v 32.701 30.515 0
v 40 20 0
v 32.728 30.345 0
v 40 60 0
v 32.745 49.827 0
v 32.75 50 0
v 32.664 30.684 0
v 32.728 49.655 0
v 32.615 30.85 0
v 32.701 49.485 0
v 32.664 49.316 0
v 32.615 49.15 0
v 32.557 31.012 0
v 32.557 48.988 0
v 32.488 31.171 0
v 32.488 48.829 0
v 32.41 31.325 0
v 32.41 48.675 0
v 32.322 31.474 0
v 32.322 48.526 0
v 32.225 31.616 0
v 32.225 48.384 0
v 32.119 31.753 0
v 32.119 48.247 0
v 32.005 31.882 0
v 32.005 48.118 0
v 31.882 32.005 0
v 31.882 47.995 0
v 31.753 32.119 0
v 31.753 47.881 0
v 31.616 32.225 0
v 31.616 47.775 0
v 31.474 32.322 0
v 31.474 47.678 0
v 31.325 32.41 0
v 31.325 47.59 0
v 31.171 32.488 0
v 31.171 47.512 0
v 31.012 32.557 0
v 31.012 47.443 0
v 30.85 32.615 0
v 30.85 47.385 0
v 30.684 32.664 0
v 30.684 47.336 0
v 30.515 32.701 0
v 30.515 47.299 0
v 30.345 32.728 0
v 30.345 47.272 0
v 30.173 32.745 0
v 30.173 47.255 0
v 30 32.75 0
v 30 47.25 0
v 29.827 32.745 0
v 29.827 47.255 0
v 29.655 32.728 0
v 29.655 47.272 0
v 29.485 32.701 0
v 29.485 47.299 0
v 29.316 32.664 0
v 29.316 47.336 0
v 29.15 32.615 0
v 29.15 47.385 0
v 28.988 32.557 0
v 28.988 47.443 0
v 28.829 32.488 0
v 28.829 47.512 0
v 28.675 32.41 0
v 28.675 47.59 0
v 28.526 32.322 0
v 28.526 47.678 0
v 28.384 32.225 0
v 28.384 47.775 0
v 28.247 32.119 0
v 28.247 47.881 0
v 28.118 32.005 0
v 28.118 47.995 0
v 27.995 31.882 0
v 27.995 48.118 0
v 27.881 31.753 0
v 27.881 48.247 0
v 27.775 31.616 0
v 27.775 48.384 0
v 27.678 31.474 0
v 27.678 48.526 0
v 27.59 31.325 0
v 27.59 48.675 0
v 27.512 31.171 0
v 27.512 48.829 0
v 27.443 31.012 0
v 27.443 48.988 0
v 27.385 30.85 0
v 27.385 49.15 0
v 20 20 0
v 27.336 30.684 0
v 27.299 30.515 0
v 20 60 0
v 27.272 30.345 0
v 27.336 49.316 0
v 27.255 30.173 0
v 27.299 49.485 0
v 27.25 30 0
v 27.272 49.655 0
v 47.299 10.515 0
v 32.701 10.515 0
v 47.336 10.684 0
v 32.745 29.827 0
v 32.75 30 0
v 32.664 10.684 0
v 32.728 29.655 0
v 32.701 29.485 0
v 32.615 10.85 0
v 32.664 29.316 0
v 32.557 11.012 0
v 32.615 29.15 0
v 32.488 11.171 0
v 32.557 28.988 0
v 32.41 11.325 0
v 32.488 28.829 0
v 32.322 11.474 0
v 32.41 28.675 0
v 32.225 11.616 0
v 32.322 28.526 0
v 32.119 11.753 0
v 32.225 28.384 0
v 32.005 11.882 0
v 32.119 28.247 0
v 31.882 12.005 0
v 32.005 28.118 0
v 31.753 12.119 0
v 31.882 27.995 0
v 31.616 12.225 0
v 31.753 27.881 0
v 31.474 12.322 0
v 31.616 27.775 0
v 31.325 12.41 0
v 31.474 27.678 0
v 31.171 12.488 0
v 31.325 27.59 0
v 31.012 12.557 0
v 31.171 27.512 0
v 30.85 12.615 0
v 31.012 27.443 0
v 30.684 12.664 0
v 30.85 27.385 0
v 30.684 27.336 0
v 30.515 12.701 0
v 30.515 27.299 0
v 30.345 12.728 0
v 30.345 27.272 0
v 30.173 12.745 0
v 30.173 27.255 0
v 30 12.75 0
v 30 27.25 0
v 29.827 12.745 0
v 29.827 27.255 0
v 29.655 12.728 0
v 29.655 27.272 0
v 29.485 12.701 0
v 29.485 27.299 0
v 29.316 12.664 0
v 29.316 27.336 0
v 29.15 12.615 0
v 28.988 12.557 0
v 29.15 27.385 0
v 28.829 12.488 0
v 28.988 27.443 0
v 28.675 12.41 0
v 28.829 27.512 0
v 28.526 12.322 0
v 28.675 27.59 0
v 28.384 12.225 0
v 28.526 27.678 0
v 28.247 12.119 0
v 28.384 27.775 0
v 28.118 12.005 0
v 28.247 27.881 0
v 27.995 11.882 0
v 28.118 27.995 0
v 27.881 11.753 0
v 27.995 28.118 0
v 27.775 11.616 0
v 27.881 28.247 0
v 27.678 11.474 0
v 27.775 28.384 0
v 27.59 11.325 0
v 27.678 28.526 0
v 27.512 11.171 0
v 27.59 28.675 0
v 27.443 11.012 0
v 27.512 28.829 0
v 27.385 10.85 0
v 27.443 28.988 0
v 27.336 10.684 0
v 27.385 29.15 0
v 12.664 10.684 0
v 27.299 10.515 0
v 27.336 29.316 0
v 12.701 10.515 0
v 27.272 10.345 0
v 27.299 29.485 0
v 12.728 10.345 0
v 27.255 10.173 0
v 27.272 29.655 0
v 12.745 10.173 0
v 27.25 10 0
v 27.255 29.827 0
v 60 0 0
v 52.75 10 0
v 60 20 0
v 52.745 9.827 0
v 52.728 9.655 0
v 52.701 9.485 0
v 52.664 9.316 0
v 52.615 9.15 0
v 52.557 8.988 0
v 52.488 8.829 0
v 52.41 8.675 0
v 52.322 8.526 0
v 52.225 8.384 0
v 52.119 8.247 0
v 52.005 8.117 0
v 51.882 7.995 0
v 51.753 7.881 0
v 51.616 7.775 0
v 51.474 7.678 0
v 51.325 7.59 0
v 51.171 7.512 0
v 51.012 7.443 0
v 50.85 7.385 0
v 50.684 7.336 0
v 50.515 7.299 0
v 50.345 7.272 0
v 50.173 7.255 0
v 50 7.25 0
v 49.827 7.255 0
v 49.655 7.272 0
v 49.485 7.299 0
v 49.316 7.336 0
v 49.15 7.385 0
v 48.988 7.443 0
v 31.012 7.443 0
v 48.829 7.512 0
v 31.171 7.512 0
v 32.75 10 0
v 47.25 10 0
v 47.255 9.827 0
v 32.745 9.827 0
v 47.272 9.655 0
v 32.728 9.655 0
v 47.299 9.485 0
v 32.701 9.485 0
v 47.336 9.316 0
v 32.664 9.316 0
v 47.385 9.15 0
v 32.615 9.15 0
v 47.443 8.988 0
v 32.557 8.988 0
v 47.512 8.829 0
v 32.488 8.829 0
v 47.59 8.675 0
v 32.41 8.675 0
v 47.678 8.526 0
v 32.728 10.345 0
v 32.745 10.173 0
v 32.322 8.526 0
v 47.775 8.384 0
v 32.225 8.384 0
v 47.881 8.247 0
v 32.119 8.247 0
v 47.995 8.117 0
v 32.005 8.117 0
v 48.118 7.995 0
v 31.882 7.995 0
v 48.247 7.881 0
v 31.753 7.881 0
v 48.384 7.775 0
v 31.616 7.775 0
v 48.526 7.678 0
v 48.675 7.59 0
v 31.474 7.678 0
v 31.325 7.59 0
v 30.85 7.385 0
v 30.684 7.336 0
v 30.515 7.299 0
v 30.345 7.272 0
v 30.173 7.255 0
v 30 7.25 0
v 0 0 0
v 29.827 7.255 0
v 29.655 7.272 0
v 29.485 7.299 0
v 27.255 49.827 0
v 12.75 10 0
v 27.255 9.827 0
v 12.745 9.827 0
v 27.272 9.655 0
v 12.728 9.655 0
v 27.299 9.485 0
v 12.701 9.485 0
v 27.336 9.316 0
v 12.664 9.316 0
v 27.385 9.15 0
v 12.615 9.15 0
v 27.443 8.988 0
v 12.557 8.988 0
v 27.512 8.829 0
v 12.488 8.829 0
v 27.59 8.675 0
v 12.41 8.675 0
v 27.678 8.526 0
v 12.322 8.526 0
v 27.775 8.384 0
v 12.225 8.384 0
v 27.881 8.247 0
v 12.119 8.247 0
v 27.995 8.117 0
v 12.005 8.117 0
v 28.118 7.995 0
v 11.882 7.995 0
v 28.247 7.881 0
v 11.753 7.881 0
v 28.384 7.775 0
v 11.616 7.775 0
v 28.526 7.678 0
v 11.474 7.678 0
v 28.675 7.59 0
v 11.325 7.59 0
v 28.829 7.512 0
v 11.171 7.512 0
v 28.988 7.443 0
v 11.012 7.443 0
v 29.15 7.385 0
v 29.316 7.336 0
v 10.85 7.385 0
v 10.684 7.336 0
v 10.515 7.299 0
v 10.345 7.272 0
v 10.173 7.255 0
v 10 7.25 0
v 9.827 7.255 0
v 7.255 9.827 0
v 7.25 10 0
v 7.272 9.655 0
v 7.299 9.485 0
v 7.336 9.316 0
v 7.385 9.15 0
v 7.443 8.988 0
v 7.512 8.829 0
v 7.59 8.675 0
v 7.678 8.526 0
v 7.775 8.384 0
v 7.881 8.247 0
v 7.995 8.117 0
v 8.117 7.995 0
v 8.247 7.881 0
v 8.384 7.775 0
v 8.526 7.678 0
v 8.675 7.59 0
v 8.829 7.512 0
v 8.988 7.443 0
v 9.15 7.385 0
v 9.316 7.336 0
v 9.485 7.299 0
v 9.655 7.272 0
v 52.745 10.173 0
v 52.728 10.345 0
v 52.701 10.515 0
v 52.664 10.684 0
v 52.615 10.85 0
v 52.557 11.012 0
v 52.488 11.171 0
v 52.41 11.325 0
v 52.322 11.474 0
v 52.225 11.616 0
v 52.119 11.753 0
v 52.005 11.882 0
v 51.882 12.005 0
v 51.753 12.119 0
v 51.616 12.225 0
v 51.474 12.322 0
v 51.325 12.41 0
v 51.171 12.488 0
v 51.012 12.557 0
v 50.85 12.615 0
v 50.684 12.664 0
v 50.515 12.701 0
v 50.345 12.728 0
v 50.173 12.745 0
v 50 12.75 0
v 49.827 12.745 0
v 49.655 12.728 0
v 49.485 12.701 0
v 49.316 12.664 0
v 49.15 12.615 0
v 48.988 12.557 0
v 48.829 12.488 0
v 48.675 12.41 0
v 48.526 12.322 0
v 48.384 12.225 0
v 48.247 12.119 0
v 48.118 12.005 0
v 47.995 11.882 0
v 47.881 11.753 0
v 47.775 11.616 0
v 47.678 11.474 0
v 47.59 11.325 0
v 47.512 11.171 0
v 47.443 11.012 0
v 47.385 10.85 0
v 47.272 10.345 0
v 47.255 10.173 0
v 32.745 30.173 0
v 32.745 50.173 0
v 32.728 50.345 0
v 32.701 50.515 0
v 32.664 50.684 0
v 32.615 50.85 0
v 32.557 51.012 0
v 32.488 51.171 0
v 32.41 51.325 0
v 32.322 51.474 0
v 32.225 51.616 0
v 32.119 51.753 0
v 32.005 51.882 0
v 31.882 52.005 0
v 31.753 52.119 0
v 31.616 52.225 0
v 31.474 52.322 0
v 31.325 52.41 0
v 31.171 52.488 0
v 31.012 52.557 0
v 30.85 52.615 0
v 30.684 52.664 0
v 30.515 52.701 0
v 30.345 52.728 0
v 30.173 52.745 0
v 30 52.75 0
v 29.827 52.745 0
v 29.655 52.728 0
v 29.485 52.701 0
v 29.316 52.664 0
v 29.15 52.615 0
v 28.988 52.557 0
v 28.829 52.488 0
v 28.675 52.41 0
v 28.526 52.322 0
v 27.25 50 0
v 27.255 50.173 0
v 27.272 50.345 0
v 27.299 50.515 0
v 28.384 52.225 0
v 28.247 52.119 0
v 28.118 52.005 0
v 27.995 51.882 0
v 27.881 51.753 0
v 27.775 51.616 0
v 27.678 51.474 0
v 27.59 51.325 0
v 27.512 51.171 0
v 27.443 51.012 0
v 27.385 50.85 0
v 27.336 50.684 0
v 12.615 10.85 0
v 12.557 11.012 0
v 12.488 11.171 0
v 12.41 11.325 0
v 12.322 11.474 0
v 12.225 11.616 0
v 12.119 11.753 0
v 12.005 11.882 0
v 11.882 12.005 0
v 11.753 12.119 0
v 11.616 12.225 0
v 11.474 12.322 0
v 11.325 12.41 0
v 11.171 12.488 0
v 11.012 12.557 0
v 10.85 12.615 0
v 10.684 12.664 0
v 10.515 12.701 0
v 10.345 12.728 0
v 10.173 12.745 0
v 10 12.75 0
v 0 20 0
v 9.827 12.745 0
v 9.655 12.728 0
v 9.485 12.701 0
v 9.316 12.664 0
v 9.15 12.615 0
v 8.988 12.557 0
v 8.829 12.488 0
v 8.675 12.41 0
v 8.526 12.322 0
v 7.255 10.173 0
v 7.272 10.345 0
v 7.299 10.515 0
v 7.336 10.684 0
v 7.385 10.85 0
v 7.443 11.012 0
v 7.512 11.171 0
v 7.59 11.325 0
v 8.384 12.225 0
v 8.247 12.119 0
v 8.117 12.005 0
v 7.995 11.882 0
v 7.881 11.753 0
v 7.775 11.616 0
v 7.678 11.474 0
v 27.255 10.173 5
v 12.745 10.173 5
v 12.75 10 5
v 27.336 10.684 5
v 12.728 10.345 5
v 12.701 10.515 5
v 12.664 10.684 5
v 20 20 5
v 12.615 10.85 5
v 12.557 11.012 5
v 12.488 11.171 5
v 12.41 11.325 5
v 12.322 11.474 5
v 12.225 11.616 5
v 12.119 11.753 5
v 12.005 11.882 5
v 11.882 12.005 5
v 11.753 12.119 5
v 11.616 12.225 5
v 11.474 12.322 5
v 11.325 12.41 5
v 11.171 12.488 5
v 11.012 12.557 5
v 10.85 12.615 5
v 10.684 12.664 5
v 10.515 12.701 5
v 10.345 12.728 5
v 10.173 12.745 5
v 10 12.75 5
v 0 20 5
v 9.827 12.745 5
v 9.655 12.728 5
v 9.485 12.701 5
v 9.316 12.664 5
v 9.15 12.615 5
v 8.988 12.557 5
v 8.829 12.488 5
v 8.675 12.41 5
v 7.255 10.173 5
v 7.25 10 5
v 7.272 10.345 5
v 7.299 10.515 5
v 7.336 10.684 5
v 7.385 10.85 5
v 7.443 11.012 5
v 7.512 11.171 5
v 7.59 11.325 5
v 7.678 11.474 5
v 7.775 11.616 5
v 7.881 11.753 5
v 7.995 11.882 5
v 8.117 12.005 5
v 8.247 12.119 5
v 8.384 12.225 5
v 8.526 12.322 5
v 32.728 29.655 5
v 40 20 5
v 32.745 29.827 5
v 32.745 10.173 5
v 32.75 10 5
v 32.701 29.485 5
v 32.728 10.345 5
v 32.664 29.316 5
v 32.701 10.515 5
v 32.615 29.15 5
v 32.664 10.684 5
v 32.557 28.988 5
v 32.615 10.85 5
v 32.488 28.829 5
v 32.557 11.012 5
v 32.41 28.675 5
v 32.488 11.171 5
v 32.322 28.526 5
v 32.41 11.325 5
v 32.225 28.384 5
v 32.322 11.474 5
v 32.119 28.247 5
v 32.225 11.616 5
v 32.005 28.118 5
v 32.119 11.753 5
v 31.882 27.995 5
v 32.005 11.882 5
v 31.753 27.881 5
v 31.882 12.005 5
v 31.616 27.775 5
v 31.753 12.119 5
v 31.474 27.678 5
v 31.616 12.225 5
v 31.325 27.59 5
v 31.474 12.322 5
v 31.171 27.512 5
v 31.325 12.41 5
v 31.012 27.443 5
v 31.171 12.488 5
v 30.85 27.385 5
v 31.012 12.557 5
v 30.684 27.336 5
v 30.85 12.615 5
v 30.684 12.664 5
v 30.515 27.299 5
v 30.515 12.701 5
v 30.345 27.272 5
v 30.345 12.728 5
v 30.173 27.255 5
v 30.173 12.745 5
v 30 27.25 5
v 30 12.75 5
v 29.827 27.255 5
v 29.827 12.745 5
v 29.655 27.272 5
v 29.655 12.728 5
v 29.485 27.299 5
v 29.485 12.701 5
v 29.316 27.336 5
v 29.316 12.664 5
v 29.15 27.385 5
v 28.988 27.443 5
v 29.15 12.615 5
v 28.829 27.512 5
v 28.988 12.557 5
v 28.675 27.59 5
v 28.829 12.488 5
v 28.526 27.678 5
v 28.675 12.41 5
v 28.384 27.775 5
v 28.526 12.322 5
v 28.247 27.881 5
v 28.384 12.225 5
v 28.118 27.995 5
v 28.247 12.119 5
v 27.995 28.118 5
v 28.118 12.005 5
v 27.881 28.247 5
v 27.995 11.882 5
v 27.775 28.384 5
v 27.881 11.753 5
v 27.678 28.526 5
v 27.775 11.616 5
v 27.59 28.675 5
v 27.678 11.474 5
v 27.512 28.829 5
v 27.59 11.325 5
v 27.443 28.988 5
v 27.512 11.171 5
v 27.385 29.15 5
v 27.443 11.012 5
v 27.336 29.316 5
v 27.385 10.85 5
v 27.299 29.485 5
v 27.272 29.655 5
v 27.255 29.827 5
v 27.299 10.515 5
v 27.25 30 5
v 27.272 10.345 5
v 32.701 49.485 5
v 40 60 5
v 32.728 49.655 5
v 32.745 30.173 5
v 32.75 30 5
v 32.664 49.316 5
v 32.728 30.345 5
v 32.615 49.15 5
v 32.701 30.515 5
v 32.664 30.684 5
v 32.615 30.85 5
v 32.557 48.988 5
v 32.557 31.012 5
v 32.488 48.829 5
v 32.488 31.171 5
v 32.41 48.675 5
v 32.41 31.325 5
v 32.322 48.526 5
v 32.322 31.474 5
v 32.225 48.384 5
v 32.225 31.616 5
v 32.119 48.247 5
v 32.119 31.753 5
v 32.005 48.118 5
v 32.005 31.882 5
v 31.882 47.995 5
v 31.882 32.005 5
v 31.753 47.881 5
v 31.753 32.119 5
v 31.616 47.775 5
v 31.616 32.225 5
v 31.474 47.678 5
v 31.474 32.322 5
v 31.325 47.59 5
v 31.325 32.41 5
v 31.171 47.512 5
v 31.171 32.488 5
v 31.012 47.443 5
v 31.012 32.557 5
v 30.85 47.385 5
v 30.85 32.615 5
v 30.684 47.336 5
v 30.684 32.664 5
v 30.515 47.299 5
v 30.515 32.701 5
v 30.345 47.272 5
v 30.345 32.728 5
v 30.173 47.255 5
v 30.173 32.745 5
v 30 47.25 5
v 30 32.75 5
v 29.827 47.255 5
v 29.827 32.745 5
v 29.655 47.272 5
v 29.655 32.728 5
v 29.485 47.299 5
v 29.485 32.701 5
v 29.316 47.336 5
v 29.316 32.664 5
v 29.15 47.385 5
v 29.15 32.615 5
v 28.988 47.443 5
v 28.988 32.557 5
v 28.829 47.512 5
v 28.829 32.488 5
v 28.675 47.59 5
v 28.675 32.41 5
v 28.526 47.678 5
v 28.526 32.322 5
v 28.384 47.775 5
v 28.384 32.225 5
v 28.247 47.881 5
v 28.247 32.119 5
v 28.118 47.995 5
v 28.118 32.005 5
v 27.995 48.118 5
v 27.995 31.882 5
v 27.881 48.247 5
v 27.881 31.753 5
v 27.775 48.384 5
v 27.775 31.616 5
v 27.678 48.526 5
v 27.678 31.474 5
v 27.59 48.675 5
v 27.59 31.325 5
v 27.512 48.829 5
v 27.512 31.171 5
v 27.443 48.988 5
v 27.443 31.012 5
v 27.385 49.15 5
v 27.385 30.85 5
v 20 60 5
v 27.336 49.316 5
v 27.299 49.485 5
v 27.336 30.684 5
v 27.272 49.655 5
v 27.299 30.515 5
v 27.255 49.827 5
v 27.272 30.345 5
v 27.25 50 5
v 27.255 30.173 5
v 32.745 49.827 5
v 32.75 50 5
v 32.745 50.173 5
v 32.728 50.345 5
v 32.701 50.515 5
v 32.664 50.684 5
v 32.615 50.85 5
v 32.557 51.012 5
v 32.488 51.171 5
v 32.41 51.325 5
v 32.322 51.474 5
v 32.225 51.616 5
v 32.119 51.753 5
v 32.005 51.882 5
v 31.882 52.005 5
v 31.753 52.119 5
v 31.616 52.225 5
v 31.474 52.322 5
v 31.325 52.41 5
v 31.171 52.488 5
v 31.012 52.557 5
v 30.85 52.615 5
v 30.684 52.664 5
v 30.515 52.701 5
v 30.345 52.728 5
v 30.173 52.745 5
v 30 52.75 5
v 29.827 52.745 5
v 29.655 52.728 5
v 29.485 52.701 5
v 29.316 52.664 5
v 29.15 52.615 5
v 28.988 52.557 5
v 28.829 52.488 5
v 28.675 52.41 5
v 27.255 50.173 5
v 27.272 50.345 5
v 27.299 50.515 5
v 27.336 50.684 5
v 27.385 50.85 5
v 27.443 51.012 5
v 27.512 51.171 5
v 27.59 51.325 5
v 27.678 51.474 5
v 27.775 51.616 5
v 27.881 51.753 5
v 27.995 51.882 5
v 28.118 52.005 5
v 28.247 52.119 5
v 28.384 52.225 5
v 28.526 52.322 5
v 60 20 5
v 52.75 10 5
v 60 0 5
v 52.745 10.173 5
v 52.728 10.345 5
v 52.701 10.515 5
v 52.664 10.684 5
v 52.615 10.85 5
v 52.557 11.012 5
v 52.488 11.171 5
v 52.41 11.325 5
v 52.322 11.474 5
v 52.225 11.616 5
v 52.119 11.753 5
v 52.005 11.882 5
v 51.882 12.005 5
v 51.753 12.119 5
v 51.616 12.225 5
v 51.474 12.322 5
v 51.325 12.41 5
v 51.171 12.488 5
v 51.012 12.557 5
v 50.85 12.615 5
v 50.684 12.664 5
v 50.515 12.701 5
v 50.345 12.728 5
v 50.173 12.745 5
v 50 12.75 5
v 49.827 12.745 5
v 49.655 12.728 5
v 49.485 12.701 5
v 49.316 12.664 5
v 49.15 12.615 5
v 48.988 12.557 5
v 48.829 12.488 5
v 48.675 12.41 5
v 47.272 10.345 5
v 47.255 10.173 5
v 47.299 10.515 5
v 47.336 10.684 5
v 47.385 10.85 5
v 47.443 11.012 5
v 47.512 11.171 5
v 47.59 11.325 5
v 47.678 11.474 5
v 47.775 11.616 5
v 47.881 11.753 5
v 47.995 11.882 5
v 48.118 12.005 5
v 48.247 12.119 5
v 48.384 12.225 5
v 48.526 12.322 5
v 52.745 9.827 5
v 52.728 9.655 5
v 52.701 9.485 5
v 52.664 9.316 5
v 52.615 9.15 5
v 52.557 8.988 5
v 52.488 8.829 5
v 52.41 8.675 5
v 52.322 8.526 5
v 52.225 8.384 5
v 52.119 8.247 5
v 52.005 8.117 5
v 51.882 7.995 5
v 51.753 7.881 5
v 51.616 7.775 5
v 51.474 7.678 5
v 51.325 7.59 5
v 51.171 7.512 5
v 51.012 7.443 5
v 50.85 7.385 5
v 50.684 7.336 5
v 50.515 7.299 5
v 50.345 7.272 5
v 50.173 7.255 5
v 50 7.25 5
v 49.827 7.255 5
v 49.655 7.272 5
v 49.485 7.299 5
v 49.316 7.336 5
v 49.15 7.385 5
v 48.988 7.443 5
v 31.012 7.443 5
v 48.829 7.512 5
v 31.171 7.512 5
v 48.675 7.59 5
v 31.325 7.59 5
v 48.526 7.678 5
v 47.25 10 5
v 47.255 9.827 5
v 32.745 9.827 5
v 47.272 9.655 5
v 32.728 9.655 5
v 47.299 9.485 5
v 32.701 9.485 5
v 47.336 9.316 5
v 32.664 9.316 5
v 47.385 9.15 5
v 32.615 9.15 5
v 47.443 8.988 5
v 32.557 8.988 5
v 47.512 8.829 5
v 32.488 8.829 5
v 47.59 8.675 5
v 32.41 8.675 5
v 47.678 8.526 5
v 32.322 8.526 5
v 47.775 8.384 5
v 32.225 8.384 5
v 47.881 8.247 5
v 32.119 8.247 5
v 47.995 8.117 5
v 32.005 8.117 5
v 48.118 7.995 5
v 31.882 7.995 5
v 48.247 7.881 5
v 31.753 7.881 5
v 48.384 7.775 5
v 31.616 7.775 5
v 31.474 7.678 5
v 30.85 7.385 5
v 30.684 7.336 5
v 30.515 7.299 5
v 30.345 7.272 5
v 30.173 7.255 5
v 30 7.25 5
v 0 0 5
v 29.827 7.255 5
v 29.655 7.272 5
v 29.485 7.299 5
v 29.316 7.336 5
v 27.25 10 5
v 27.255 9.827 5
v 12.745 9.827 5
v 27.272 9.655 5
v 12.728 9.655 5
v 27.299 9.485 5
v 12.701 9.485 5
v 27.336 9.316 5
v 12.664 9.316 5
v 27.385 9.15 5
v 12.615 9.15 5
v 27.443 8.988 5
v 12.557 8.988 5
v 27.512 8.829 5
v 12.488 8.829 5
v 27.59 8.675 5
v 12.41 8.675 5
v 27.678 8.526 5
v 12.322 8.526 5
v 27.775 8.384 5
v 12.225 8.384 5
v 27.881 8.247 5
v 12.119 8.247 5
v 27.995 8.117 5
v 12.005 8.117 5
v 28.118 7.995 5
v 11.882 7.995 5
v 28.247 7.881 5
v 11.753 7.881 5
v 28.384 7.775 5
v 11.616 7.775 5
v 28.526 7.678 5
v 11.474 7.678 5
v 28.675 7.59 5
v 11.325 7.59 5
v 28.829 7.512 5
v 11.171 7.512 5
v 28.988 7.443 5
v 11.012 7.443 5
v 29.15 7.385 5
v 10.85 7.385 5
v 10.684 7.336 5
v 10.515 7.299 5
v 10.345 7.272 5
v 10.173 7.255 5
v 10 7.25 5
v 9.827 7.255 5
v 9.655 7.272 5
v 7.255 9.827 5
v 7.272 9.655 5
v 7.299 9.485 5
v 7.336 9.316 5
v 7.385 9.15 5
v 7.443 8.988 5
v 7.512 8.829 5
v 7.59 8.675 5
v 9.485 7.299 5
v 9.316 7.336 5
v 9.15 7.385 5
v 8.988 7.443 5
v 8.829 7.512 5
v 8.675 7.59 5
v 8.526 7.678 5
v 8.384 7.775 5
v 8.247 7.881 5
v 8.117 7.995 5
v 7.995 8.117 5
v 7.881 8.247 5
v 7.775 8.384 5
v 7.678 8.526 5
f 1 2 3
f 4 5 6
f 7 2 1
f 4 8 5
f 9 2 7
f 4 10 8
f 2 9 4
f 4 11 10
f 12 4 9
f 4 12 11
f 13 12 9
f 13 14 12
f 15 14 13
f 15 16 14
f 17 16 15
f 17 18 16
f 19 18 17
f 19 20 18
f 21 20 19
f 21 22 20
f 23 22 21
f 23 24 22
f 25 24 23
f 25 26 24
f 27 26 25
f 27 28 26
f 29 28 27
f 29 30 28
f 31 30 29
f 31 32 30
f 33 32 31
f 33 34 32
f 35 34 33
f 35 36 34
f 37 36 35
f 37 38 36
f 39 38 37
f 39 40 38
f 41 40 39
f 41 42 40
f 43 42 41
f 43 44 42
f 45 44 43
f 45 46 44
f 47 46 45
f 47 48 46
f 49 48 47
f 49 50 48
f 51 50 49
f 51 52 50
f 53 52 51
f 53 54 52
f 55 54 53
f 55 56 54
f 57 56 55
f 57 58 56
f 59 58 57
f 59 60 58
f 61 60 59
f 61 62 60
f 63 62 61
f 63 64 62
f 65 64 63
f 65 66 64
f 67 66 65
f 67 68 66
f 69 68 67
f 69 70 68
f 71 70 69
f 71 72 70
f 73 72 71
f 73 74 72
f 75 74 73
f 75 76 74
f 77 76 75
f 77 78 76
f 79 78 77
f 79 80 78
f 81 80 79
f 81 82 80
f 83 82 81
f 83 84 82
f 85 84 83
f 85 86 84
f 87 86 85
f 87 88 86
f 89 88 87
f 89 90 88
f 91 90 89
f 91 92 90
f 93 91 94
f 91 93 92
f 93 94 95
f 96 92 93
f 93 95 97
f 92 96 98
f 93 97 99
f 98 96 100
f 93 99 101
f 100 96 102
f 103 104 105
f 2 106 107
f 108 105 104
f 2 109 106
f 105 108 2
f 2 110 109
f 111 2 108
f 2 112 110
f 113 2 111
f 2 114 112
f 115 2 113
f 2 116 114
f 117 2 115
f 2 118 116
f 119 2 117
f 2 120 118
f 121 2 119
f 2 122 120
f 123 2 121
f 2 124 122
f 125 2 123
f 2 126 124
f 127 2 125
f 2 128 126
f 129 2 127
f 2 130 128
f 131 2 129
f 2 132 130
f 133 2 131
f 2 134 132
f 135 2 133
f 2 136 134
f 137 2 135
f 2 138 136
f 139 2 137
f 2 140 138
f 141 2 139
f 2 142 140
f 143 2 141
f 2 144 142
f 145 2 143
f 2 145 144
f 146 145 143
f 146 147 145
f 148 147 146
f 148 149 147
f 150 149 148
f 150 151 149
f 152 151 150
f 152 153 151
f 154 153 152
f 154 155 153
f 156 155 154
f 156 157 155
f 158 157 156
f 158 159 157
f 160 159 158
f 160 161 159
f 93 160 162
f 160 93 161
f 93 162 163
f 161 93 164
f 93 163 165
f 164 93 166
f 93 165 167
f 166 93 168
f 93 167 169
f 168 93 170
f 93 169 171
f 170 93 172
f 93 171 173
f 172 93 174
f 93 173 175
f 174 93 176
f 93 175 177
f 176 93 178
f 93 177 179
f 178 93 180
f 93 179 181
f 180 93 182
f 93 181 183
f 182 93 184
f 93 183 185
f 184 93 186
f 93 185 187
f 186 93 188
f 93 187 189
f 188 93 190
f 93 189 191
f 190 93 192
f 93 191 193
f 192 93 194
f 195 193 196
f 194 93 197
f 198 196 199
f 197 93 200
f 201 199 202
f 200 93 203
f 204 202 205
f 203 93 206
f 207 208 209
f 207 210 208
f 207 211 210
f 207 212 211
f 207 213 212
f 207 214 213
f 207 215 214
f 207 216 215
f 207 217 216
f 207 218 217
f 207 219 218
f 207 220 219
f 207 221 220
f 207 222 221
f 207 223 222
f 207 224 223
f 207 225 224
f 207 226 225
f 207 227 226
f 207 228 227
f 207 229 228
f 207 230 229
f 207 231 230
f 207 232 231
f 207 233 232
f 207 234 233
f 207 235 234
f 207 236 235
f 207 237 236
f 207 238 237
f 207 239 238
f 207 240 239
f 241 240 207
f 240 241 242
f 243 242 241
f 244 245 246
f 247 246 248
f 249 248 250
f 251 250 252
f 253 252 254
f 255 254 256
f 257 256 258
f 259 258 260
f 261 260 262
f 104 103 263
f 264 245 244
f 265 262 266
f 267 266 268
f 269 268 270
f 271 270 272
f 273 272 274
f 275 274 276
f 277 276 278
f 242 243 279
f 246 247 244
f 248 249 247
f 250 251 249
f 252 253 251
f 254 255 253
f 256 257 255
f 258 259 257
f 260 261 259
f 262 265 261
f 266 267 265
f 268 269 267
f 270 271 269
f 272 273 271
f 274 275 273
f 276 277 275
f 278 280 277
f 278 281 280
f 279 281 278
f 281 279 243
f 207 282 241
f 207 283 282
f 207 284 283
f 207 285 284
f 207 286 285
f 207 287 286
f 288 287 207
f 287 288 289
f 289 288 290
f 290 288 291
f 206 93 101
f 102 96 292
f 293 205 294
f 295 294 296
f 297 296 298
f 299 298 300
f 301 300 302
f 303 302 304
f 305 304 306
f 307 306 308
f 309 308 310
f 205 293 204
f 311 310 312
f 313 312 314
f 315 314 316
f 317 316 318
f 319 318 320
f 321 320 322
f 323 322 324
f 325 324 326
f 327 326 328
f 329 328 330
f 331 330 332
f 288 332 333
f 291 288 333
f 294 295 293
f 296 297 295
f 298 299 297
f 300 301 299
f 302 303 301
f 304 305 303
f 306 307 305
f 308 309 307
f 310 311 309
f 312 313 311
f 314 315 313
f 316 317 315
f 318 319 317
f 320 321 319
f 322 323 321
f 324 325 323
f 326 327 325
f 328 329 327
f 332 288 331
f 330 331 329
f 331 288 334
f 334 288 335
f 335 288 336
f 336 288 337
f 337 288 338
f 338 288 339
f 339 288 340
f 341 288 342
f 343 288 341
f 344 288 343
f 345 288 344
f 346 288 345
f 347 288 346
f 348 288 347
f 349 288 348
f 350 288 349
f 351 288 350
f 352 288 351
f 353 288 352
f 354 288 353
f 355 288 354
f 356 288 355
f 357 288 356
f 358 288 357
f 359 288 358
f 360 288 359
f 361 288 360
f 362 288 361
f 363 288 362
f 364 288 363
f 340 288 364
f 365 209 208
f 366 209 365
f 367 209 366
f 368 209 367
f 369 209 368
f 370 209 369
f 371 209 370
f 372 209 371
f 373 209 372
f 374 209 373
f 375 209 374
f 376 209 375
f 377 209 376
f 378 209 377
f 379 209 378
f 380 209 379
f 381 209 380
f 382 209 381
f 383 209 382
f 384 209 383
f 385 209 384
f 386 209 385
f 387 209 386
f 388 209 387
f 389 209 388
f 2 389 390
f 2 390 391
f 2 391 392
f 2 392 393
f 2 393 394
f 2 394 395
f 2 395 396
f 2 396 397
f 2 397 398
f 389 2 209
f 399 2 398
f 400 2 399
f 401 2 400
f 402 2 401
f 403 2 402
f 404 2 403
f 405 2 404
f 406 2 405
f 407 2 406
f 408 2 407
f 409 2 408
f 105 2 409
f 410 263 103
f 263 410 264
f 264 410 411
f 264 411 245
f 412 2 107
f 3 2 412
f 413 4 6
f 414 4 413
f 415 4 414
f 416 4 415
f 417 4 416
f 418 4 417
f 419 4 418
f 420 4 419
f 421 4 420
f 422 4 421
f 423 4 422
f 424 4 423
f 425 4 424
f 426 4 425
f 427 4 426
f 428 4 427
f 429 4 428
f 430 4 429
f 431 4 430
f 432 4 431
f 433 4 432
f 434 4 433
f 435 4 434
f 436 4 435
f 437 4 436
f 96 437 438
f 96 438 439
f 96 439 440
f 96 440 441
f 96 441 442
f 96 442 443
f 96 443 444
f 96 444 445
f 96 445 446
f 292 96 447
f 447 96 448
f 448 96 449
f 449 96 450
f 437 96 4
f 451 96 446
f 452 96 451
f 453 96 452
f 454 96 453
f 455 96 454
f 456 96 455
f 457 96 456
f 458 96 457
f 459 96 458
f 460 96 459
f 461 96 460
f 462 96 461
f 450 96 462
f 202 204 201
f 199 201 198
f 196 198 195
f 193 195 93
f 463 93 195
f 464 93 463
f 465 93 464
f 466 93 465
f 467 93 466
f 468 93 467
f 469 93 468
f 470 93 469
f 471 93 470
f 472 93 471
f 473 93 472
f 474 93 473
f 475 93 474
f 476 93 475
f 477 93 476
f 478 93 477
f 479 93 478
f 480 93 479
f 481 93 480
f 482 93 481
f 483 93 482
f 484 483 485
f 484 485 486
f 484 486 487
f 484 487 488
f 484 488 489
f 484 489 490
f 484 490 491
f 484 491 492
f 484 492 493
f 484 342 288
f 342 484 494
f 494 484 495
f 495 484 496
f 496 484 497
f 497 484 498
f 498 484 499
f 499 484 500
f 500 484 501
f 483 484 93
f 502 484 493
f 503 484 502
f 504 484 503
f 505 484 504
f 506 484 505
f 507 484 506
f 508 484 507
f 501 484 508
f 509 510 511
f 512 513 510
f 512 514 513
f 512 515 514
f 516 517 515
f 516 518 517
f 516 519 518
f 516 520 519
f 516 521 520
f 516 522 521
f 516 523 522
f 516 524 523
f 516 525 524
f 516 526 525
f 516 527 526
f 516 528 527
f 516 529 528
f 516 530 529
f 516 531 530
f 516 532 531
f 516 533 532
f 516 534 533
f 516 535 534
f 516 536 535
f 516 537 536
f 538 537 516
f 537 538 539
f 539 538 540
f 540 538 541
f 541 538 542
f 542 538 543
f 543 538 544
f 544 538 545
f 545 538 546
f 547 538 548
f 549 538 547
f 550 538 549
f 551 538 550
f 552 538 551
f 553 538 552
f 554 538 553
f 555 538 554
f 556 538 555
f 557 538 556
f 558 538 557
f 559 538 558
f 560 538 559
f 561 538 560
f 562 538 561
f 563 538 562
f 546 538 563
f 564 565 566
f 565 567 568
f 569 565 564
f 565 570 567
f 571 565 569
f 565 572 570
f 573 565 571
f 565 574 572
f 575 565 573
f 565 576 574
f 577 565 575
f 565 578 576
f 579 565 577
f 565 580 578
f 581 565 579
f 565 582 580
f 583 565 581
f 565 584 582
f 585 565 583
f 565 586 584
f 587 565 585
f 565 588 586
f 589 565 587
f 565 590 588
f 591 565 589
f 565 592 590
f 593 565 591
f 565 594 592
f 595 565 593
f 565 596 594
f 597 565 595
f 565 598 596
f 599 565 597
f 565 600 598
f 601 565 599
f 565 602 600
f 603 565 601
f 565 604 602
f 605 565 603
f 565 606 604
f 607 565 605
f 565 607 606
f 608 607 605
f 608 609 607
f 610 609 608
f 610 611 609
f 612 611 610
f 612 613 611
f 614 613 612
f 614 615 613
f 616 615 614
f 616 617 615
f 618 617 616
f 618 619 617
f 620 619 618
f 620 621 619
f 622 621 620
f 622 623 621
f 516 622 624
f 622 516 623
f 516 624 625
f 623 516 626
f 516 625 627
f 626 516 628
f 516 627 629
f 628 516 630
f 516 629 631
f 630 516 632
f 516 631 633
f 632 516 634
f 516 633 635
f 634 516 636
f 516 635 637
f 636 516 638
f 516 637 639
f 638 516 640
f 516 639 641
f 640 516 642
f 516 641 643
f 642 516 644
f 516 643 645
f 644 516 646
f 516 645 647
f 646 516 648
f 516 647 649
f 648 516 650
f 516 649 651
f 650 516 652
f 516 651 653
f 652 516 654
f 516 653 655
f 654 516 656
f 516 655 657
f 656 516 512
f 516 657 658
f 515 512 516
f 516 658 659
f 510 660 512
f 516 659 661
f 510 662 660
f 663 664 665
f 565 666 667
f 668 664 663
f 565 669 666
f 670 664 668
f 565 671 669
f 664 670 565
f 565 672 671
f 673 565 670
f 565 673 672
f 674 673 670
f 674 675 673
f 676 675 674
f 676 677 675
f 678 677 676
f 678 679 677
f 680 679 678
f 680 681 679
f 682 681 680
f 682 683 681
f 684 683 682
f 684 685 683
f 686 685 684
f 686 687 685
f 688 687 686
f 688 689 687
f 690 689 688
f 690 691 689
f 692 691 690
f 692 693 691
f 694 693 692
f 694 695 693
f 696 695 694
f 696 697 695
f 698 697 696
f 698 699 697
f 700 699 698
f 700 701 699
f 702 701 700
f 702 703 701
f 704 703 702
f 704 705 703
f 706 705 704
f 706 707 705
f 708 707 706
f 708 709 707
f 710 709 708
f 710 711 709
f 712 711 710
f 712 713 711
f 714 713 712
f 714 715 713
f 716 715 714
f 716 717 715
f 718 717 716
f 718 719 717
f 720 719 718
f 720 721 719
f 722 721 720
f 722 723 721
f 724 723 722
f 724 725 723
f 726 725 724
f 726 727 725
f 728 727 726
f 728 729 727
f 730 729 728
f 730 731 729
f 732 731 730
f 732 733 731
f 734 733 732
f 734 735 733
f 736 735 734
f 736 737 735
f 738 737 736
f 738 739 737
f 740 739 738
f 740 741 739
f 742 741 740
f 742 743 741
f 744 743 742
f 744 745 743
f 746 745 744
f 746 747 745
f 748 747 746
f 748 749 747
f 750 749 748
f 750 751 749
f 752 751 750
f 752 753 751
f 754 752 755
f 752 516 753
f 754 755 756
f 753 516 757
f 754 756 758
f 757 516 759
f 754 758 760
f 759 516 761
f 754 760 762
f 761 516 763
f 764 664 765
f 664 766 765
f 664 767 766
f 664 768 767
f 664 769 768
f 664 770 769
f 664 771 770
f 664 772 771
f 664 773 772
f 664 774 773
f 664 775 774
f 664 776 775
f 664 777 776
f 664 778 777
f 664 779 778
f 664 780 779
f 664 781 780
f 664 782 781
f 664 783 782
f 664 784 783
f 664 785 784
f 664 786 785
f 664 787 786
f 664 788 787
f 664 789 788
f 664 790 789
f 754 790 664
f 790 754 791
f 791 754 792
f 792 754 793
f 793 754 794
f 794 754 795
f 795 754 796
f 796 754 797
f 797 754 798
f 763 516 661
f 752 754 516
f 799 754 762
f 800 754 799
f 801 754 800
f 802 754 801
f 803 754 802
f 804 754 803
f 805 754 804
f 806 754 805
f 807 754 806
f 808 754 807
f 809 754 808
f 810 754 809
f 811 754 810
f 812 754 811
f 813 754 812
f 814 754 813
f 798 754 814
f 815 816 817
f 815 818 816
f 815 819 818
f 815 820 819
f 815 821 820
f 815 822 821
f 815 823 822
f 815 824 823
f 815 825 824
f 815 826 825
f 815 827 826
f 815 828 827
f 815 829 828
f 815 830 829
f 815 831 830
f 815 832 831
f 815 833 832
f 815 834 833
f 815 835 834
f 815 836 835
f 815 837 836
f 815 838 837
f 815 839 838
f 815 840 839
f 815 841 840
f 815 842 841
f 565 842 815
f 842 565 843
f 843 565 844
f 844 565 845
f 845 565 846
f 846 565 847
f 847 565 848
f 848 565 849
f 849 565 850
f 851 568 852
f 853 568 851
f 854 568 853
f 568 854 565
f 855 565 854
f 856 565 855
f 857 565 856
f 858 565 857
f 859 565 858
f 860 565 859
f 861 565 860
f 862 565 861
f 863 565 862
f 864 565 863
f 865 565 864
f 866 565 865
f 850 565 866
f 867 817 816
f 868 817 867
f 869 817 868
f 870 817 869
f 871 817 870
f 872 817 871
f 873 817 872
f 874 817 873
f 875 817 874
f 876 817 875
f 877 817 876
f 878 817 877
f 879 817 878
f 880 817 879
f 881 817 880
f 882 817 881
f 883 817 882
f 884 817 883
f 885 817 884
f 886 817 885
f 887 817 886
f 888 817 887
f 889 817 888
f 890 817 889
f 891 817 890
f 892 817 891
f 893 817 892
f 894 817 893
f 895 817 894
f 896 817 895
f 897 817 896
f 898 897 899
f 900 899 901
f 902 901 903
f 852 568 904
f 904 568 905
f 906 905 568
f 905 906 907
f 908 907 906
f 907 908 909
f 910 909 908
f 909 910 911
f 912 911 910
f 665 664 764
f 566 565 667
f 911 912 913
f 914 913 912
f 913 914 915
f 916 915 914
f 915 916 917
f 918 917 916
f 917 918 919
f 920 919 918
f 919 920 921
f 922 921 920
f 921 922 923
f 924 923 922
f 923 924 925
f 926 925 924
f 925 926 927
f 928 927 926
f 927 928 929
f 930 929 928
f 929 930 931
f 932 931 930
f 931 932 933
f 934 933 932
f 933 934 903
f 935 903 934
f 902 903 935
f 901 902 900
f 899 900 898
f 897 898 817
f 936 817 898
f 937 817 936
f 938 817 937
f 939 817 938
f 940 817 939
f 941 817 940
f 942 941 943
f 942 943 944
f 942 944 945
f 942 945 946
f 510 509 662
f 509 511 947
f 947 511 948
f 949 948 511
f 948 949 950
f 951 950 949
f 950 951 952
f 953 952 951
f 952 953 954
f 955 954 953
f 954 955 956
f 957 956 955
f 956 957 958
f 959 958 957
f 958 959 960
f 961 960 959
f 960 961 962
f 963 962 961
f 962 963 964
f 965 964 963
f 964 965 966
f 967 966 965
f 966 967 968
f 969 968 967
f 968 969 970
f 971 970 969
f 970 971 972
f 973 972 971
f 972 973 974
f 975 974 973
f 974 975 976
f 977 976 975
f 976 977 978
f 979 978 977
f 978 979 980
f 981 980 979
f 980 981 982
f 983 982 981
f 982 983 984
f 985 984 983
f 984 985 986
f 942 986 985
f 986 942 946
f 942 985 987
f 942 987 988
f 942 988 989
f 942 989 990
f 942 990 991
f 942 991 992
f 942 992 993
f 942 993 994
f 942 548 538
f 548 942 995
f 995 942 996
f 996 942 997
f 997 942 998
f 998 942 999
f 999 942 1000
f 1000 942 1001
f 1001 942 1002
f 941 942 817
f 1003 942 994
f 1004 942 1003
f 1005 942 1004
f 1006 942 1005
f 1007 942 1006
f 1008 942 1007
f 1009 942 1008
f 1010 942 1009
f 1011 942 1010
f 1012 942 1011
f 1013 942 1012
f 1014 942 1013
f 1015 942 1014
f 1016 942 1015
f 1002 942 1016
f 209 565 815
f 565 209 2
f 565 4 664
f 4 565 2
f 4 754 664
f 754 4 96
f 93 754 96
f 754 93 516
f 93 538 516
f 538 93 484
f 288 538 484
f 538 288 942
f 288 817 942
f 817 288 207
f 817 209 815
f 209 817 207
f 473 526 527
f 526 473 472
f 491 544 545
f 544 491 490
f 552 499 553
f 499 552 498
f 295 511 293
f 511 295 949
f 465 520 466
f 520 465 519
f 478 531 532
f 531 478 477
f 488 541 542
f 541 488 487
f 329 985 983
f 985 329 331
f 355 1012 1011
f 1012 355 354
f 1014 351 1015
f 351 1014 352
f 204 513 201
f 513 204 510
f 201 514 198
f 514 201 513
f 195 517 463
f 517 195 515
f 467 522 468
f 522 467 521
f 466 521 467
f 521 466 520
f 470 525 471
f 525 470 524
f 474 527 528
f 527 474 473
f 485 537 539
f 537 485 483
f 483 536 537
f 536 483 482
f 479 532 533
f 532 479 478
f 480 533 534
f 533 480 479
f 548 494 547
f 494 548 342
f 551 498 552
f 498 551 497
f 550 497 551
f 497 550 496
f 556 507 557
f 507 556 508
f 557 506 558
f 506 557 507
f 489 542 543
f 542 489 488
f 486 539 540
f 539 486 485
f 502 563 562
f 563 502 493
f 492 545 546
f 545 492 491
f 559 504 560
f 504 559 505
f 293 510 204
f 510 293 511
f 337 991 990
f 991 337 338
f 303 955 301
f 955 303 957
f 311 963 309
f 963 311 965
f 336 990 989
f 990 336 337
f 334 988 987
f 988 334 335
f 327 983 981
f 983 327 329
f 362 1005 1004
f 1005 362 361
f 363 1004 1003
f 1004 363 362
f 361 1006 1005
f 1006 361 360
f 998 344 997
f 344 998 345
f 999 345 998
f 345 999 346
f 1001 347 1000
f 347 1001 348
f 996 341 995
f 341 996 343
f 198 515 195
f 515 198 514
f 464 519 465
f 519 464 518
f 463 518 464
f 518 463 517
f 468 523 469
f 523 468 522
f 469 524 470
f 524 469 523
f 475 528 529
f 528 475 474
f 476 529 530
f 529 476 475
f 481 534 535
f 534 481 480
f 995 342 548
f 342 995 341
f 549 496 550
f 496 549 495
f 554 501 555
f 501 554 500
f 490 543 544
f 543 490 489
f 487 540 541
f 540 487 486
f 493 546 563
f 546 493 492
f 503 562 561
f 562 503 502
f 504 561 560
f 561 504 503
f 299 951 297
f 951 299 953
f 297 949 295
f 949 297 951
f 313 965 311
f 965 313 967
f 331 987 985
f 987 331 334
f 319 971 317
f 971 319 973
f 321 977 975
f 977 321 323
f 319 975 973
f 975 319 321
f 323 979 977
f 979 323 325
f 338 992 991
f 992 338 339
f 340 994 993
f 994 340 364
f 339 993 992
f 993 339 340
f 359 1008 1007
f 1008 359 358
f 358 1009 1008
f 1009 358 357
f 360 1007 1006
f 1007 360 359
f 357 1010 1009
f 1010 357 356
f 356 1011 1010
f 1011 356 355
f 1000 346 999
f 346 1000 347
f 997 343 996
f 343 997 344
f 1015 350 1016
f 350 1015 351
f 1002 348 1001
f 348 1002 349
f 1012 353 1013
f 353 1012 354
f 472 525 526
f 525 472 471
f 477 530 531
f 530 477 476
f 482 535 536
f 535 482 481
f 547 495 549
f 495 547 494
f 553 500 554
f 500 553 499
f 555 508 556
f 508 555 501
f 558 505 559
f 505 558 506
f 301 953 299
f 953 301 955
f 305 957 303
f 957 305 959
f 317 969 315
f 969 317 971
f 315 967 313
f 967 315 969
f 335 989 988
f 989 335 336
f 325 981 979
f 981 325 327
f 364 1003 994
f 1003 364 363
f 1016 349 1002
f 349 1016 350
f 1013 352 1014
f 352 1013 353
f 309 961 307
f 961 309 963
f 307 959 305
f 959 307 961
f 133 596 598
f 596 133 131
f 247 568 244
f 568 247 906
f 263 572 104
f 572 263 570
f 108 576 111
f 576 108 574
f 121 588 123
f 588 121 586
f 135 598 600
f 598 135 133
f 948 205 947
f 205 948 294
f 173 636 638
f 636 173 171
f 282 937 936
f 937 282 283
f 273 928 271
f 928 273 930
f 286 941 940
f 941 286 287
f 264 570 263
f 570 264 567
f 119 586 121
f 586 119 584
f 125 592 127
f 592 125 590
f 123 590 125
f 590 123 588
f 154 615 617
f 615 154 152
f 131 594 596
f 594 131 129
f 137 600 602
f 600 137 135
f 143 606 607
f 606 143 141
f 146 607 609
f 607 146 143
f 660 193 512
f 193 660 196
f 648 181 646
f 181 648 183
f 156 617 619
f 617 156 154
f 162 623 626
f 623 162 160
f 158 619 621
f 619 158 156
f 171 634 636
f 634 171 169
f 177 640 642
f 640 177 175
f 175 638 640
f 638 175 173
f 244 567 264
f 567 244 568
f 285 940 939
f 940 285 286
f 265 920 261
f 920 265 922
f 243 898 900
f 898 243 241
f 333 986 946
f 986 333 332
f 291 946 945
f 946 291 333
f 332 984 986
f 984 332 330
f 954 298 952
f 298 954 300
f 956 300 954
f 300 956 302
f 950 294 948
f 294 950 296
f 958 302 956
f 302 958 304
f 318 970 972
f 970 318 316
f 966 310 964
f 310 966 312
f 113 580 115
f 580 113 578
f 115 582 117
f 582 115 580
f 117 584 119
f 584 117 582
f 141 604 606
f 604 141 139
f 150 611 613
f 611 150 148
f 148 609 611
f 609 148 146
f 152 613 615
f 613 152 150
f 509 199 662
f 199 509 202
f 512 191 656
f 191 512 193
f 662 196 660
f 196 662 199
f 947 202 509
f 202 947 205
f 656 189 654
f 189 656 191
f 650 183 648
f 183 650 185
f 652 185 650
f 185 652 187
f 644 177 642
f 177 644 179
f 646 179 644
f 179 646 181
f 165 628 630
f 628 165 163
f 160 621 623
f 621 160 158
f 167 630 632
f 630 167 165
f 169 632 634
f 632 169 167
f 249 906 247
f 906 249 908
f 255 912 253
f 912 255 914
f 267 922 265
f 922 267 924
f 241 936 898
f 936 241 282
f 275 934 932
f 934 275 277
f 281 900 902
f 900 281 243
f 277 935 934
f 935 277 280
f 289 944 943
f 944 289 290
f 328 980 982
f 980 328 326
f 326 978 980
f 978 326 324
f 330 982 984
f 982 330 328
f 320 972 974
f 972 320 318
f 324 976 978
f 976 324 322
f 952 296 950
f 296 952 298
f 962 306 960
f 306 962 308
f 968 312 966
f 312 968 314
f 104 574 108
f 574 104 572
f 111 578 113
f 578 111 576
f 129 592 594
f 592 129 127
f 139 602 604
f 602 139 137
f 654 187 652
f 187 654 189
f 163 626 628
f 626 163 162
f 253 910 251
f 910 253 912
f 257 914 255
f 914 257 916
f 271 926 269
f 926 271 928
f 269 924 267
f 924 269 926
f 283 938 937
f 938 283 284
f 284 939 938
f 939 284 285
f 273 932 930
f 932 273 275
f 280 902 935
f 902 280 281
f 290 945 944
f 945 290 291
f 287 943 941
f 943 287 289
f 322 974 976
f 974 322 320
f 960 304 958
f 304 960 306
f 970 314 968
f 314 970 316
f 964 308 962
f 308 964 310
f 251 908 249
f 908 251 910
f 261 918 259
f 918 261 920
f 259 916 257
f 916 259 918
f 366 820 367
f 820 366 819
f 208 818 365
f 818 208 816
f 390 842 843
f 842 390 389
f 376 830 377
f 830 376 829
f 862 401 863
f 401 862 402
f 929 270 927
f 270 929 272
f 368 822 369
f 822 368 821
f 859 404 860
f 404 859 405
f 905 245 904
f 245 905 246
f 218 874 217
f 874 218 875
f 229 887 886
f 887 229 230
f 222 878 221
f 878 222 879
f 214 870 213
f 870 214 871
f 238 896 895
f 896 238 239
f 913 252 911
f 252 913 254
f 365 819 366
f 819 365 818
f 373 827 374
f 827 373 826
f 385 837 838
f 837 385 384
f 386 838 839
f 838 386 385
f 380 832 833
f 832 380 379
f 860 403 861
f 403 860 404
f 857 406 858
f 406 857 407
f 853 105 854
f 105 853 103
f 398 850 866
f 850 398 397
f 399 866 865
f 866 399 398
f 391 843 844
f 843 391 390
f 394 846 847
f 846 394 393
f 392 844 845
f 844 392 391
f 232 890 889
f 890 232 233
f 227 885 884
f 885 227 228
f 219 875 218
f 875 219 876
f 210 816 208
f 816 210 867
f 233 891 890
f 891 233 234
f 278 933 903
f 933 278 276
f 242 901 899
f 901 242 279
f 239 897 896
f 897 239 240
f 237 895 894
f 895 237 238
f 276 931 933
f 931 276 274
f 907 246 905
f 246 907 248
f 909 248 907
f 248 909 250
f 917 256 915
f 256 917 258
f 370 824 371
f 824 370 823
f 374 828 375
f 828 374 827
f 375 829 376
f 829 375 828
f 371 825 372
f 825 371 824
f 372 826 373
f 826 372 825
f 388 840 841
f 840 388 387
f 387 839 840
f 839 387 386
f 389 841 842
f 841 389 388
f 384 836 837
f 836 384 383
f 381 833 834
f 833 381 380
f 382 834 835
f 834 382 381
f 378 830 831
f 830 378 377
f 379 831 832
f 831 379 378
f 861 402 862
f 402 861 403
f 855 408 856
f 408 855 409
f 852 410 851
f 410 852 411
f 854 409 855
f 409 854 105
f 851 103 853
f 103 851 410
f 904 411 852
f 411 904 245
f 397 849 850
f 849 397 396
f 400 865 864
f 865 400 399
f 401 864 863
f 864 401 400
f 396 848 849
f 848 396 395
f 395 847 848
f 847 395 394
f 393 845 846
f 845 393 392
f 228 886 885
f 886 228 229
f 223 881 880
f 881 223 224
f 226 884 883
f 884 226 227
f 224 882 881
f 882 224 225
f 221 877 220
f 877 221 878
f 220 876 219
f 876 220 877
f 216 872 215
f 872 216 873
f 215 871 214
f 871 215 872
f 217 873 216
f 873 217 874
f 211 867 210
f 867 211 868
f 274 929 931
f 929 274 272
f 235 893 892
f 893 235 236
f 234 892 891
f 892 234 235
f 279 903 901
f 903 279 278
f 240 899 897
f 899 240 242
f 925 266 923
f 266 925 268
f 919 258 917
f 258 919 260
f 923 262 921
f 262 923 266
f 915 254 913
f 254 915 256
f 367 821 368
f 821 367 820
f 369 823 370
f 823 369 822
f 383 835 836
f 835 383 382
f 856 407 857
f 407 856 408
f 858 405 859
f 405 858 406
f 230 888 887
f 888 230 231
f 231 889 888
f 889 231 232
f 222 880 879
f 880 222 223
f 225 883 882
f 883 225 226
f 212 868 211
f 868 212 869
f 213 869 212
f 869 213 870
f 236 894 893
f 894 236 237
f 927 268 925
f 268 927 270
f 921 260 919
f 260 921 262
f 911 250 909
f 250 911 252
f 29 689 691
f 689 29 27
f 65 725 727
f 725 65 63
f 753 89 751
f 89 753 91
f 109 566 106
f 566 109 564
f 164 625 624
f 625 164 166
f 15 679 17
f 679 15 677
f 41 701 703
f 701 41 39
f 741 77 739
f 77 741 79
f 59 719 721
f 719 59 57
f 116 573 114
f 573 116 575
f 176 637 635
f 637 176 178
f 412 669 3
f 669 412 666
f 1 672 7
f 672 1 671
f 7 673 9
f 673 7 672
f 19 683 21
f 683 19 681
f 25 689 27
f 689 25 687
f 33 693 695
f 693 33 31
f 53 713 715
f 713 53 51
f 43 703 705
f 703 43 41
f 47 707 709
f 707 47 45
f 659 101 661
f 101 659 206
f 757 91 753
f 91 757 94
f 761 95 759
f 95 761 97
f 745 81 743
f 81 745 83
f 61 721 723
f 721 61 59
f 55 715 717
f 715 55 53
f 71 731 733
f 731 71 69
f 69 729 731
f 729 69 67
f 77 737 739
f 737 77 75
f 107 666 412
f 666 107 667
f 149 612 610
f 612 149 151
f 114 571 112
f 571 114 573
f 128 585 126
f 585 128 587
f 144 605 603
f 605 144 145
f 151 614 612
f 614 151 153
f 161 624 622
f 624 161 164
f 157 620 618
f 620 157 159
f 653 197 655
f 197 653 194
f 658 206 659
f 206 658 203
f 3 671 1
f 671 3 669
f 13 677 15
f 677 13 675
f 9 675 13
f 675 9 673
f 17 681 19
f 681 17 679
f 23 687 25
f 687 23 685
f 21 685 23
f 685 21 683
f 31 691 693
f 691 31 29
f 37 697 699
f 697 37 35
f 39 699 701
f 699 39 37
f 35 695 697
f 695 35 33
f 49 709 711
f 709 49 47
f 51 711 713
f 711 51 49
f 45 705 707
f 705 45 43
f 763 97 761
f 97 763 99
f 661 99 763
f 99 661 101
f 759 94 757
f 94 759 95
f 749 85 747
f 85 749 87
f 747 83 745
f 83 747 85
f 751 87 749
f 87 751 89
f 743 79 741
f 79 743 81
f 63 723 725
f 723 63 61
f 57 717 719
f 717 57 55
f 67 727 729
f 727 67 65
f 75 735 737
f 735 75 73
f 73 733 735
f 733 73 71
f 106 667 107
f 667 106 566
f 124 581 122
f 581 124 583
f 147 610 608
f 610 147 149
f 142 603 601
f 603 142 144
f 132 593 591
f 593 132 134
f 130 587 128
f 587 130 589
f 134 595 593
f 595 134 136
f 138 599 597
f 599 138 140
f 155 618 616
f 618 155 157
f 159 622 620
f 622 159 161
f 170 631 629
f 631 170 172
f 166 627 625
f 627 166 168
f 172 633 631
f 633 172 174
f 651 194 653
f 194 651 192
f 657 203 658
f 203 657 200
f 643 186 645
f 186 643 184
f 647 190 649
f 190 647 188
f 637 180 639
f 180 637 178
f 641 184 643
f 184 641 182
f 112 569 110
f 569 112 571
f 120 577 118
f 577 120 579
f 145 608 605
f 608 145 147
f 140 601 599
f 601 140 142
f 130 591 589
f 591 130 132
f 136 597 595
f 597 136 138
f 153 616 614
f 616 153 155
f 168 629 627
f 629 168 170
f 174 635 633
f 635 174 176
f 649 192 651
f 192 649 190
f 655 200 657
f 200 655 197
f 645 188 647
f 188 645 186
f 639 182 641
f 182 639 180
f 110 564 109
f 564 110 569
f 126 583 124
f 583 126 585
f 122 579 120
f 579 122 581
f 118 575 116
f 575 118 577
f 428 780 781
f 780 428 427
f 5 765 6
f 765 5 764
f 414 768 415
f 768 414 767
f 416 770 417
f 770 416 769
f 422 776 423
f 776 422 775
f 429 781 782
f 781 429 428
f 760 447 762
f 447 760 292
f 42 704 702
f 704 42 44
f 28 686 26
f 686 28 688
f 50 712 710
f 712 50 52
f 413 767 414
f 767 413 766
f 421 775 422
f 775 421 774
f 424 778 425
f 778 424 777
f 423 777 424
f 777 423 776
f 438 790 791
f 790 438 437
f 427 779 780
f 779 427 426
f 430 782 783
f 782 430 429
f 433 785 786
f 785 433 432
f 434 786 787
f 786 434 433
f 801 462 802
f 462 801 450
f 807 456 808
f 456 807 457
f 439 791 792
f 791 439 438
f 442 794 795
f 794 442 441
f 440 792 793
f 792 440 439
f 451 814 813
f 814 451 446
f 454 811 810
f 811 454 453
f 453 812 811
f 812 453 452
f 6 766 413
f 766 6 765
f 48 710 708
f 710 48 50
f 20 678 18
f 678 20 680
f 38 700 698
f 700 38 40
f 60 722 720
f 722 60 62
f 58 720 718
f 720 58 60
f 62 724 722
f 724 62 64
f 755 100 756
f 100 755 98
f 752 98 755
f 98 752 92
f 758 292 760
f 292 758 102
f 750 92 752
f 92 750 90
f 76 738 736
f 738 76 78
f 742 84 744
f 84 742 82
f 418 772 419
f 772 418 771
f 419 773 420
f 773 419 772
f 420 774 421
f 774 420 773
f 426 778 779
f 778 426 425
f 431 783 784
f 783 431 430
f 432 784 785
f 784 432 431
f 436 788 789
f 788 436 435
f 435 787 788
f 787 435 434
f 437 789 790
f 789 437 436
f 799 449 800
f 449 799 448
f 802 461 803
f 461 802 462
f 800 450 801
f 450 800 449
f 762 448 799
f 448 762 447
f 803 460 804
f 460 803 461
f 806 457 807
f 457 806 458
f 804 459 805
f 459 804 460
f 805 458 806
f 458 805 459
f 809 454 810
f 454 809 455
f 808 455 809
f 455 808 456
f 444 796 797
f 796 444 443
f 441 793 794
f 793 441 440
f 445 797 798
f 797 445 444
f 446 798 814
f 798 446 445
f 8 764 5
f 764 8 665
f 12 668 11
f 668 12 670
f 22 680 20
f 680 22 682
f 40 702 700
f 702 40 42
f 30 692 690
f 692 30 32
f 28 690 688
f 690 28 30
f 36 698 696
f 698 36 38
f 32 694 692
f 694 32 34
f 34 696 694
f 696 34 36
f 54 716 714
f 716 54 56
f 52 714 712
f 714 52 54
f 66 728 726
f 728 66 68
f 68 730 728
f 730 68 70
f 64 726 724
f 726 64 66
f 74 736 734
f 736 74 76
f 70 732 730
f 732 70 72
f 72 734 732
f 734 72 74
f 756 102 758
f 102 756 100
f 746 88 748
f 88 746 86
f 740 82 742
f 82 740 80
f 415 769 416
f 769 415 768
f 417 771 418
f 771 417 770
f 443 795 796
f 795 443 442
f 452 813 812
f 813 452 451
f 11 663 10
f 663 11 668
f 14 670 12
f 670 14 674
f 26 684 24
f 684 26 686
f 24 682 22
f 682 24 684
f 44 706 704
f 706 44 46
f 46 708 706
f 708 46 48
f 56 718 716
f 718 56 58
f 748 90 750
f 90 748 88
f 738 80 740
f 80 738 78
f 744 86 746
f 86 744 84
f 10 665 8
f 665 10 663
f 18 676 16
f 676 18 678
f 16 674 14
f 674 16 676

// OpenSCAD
$fn=100;
difference()
        {
            linear_extrude(height=5)
            polygon( points=
                [[0,0],
                [0,20],
                [20,20],
                [20,60],
                [40,60],
                [40,20],
                [60,20],
                [60,0],
            ]);
            translate([10,10,-0.01])
                cylinder(h=5.02,d=5.5);
            translate([30,10,-0.01])
                cylinder(h=5.02,d=5.5);
            translate([50,10,-0.01])
                cylinder(h=5.02,d=5.5);
            translate([30,30,-0.01])
                cylinder(h=5.02,d=5.5);
            translate([30,50,-0.01])
                cylinder(h=5.02,d=5.5);
        }
